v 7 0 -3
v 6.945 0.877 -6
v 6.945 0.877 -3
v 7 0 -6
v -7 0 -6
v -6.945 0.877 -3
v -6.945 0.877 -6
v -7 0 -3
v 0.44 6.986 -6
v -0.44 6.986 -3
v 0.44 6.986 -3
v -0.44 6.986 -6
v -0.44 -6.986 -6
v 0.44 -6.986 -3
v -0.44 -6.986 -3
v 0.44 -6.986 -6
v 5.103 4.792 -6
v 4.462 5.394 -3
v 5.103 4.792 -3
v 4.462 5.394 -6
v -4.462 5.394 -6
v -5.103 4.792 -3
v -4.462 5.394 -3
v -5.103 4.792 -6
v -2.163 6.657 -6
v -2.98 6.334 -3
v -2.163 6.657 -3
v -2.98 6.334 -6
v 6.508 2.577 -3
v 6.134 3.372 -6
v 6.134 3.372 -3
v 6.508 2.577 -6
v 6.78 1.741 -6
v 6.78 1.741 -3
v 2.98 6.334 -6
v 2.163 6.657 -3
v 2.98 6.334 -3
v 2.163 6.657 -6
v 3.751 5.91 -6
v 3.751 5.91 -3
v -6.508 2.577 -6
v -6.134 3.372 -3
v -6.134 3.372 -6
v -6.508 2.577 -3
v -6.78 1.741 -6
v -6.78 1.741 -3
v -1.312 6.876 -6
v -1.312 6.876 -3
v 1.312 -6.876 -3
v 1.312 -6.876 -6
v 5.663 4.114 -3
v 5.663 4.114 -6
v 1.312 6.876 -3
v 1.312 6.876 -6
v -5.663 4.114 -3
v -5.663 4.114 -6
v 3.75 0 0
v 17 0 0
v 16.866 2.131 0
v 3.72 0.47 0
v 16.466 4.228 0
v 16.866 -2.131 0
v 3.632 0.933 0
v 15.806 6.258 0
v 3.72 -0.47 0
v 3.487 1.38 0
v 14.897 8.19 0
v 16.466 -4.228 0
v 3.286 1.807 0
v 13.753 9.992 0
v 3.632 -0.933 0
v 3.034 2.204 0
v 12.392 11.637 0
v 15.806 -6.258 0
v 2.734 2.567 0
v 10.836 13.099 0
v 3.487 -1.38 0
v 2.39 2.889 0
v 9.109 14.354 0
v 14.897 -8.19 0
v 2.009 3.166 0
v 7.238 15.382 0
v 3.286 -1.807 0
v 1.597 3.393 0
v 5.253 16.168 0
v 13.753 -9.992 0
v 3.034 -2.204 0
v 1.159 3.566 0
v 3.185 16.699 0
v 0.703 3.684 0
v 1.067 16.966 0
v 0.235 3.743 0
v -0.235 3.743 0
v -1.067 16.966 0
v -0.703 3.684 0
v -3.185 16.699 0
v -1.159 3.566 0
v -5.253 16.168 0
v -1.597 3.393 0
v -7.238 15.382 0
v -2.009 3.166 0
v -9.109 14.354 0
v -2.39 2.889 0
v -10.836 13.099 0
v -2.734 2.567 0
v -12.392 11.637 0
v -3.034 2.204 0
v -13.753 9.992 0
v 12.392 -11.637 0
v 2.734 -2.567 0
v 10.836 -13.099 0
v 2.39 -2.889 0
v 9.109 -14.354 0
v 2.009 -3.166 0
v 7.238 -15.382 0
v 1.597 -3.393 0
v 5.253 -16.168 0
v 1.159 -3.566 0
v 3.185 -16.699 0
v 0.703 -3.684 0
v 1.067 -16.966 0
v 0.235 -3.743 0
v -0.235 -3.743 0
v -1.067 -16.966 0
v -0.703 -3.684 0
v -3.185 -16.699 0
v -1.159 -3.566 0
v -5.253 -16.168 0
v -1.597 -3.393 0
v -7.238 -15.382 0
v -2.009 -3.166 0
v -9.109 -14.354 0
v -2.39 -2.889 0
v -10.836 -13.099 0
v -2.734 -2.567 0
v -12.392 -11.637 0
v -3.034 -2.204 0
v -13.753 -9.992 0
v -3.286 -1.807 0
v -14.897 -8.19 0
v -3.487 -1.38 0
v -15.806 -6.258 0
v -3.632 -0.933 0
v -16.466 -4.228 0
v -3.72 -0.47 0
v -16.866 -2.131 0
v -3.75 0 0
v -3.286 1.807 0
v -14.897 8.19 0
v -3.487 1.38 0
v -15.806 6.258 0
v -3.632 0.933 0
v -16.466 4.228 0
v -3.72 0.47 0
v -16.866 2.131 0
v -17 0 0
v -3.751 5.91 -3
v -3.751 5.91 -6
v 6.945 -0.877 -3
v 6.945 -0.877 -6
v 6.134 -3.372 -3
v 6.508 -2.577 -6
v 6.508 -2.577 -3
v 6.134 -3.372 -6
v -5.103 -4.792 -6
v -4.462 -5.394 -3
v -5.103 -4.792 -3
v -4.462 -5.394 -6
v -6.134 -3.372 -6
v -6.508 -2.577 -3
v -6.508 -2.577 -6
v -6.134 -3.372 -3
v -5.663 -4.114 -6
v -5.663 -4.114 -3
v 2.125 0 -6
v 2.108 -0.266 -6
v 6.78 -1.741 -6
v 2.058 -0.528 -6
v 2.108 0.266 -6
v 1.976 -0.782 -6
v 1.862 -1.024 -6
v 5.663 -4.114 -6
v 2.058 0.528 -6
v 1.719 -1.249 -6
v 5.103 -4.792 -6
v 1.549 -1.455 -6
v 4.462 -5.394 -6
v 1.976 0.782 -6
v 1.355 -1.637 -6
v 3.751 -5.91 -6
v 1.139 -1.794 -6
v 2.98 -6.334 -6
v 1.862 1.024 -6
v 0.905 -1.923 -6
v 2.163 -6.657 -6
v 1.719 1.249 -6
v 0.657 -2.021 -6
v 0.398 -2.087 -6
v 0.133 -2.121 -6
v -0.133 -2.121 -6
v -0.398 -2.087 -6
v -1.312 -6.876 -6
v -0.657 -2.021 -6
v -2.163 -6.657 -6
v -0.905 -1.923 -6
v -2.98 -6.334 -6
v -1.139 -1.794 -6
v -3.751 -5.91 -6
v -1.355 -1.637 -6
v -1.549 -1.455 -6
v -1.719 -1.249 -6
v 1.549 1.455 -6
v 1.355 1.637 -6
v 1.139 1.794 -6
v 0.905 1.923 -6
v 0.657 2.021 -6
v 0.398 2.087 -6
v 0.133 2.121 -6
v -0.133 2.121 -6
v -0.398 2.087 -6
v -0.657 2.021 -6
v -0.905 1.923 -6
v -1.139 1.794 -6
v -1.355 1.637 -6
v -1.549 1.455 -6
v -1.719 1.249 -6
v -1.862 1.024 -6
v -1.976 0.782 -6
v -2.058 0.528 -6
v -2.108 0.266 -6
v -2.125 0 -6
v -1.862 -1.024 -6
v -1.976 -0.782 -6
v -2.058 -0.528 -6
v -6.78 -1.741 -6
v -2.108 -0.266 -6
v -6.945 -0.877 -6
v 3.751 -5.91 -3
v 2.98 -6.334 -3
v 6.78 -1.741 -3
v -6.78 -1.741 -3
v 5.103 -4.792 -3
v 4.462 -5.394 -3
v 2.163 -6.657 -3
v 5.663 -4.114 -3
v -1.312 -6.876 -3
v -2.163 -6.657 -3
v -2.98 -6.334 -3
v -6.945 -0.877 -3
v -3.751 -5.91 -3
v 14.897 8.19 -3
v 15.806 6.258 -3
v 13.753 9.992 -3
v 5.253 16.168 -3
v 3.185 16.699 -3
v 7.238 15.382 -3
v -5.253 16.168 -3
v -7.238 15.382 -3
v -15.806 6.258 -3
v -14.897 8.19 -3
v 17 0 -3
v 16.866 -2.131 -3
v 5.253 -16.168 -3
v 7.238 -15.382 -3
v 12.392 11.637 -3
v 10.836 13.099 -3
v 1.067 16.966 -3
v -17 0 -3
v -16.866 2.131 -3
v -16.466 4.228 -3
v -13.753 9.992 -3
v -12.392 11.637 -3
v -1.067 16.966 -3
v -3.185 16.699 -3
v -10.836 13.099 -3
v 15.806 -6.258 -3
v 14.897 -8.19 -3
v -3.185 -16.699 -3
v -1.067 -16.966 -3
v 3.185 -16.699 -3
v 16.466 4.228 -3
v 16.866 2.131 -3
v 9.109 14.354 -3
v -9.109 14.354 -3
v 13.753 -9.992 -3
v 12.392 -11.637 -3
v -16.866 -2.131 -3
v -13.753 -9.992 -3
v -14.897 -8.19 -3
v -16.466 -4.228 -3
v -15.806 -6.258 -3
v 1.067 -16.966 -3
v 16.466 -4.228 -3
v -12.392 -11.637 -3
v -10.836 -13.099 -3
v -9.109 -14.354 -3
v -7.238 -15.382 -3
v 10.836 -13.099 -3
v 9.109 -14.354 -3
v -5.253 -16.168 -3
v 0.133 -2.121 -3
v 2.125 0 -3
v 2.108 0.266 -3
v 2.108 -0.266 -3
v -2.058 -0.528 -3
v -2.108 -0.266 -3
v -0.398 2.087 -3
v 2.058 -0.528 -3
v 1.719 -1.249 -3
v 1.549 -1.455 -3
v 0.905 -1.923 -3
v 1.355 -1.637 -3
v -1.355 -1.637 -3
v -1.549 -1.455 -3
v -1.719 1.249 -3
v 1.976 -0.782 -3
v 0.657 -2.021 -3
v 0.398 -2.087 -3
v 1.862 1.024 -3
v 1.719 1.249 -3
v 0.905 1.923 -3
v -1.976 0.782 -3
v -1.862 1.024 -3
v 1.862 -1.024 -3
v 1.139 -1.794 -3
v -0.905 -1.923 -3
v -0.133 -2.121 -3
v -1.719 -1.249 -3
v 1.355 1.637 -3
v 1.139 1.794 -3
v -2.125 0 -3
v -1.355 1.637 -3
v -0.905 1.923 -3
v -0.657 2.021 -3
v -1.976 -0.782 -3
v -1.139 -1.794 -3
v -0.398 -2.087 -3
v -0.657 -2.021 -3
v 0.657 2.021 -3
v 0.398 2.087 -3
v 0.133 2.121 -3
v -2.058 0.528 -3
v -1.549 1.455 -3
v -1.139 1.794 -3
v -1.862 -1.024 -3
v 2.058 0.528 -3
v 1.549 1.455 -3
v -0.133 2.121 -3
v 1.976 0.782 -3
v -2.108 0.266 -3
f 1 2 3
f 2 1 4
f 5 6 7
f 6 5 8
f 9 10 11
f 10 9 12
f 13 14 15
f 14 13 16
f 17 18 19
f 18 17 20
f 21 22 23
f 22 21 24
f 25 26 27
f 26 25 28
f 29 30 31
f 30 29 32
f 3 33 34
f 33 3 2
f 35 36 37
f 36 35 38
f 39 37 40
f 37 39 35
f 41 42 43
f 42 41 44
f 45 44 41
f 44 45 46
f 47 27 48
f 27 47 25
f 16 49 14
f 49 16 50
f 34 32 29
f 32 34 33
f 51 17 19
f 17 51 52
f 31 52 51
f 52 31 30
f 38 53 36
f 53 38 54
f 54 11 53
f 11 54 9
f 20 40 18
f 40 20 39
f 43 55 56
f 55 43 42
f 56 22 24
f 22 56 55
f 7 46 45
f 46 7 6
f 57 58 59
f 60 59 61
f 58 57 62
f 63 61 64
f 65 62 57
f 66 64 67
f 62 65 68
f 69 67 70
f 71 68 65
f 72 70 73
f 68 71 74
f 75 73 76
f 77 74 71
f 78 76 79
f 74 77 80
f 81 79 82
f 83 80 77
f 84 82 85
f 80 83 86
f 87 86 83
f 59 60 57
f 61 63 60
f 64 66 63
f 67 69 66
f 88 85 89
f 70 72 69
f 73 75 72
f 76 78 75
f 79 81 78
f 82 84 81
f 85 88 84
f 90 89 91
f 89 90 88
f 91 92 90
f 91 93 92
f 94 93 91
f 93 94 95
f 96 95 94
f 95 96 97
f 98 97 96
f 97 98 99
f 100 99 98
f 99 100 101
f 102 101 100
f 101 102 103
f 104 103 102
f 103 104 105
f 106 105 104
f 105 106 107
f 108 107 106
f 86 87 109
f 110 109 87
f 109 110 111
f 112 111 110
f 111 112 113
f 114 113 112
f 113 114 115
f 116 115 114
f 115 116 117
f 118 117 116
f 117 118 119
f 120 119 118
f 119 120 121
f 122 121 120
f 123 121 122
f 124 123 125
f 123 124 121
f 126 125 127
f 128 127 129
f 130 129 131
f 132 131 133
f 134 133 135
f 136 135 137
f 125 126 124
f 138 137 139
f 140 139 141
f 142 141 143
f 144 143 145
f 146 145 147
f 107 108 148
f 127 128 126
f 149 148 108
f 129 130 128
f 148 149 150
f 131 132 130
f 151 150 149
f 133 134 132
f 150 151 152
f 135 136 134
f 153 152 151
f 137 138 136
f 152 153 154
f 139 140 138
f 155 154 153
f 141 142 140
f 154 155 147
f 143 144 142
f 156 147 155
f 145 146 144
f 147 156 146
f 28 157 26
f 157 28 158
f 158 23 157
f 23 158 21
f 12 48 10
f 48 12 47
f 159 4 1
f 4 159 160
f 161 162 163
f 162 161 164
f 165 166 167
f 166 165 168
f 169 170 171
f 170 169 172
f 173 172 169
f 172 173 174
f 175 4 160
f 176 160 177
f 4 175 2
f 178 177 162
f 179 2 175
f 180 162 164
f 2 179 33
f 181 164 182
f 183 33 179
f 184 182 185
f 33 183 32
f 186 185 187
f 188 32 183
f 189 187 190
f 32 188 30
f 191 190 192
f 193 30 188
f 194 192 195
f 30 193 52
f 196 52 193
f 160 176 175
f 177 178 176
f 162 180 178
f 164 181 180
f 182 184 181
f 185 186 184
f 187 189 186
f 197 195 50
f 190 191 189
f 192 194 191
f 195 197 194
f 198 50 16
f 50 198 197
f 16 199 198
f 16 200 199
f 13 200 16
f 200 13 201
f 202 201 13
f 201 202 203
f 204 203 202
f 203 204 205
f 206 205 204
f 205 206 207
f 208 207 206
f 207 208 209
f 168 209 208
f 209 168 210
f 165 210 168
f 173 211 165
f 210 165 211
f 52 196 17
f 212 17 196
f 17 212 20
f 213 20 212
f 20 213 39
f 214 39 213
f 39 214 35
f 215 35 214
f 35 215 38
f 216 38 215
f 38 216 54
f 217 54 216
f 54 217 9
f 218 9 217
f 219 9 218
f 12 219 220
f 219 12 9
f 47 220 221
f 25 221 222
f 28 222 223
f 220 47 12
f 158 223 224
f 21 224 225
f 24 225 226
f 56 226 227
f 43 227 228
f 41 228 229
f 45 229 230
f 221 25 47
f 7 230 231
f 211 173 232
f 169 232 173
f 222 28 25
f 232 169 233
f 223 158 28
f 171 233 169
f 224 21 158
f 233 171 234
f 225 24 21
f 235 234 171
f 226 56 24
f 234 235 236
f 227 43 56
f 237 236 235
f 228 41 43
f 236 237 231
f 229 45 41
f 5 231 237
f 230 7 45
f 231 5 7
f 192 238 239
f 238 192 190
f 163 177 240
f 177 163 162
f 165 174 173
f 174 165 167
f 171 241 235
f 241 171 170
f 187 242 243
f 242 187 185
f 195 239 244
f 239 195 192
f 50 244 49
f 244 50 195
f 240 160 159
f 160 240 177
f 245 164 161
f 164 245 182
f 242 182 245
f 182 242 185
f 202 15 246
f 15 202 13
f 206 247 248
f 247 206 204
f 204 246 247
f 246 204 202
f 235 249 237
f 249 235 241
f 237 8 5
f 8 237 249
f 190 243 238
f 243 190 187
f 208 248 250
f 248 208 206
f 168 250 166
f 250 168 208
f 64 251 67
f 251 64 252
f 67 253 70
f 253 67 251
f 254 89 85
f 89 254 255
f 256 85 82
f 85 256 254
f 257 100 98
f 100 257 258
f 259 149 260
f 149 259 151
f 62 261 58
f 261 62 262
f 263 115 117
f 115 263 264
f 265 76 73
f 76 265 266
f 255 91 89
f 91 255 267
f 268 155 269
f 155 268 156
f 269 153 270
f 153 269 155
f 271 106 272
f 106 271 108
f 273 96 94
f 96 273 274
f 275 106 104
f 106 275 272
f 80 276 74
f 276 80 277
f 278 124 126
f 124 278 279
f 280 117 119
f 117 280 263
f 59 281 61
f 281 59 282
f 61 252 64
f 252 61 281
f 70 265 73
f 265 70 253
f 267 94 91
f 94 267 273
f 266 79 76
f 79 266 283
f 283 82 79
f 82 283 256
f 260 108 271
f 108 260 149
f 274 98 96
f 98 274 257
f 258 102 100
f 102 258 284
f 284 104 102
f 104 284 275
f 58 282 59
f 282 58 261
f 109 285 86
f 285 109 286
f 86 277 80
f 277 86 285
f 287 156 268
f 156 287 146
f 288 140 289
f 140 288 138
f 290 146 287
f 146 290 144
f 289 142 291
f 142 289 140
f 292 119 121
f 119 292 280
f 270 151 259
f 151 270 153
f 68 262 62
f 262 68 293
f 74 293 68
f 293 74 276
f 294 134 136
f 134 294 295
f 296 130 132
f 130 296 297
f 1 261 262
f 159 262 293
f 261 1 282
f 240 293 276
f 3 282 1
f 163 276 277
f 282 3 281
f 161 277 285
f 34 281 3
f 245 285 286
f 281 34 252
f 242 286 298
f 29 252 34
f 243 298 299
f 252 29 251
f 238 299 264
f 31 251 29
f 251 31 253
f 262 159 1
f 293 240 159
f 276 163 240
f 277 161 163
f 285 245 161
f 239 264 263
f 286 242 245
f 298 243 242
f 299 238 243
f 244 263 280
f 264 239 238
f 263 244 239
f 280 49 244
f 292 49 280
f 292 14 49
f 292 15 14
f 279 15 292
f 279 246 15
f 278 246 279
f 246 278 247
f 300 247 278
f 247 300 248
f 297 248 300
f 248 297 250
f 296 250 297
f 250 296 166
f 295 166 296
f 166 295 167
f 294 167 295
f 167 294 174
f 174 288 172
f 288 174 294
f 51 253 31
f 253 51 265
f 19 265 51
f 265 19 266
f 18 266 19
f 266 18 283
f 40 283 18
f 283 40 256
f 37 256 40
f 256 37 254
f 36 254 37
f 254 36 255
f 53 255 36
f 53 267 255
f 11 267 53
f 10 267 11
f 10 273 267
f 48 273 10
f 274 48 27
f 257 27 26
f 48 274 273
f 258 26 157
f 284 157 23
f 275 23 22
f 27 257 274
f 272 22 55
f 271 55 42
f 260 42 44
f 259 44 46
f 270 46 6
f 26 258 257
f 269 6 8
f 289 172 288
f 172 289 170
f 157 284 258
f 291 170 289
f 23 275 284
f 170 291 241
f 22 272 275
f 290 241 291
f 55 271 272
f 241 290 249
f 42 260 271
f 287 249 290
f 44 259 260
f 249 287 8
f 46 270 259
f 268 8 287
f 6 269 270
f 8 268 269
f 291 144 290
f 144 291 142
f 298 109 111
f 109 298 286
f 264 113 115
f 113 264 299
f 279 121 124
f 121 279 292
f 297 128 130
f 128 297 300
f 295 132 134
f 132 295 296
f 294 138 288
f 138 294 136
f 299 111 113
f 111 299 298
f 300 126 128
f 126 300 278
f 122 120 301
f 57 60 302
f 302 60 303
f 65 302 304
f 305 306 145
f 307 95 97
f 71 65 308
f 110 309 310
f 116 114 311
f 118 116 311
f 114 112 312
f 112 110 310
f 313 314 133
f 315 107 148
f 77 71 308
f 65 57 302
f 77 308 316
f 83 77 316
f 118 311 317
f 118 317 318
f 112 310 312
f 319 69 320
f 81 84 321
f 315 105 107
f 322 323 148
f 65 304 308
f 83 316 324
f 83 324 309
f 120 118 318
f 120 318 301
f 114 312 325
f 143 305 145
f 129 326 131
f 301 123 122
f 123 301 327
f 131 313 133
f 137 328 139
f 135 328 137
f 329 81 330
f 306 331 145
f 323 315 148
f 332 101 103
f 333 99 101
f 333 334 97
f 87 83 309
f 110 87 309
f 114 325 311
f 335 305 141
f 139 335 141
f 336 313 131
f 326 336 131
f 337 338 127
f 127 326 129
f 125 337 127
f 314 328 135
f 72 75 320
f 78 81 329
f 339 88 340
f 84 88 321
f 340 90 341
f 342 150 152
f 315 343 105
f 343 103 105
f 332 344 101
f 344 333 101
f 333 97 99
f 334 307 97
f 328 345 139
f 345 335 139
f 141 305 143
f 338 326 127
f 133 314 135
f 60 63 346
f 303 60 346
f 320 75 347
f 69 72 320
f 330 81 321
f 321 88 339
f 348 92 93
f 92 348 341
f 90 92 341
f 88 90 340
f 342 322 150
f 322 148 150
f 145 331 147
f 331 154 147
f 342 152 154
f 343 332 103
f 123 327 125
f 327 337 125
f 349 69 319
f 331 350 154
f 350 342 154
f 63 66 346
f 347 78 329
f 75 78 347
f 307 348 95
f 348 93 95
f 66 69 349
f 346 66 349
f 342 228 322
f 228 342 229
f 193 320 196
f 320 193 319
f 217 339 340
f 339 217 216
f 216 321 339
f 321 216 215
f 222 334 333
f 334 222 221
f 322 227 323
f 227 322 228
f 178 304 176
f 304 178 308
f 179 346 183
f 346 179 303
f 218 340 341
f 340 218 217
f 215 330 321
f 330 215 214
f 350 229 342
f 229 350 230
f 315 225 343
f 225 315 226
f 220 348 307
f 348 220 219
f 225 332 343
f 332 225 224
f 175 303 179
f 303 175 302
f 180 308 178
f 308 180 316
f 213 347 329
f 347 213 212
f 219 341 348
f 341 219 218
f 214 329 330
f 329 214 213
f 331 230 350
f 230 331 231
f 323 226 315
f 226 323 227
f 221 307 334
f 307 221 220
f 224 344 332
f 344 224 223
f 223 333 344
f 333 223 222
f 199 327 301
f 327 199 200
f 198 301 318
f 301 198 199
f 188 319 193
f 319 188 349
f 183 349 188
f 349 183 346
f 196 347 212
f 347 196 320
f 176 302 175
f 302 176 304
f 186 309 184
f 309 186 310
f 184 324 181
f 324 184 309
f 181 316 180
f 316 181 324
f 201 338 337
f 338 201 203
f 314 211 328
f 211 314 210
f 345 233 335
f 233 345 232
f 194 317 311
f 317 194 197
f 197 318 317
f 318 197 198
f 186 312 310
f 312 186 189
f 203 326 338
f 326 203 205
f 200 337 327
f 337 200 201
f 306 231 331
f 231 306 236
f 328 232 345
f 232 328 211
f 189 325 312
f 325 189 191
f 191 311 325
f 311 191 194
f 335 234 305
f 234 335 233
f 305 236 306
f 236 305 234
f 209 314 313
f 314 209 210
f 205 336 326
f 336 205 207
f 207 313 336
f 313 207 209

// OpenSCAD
$fn = 50;


difference() {
	union() {
		translate(v = [0, 0, -6.0000000000]) {
			cylinder(h = 6, r = 7.0000000000);
		}
		translate(v = [0, 0, -3.0000000000]) {
			cylinder(h = 3, r = 17.0000000000);
		}
	}
	union() {
		translate(v = [0, 0, 0]) {
			rotate(a = [0, 0, 0]) {
				difference() {
					union() {
						#translate(v = [0, 0, -6.0000000000]) {
							cylinder(h = 6, r = 2.0000000000);
						}
						#translate(v = [0, 0, -3]) {
							cylinder(h = 3, r1 = 2.1250000000, r2 = 3.7500000000);
						}
						#translate(v = [0, 0, -6.0000000000]) {
							cylinder(h = 6, r = 2.1250000000);
						}
						#translate(v = [0, 0, -6.0000000000]) {
							cylinder(h = 6, r = 2.0000000000);
						}
					}
					union();
				}
			}
		}
	}
}
